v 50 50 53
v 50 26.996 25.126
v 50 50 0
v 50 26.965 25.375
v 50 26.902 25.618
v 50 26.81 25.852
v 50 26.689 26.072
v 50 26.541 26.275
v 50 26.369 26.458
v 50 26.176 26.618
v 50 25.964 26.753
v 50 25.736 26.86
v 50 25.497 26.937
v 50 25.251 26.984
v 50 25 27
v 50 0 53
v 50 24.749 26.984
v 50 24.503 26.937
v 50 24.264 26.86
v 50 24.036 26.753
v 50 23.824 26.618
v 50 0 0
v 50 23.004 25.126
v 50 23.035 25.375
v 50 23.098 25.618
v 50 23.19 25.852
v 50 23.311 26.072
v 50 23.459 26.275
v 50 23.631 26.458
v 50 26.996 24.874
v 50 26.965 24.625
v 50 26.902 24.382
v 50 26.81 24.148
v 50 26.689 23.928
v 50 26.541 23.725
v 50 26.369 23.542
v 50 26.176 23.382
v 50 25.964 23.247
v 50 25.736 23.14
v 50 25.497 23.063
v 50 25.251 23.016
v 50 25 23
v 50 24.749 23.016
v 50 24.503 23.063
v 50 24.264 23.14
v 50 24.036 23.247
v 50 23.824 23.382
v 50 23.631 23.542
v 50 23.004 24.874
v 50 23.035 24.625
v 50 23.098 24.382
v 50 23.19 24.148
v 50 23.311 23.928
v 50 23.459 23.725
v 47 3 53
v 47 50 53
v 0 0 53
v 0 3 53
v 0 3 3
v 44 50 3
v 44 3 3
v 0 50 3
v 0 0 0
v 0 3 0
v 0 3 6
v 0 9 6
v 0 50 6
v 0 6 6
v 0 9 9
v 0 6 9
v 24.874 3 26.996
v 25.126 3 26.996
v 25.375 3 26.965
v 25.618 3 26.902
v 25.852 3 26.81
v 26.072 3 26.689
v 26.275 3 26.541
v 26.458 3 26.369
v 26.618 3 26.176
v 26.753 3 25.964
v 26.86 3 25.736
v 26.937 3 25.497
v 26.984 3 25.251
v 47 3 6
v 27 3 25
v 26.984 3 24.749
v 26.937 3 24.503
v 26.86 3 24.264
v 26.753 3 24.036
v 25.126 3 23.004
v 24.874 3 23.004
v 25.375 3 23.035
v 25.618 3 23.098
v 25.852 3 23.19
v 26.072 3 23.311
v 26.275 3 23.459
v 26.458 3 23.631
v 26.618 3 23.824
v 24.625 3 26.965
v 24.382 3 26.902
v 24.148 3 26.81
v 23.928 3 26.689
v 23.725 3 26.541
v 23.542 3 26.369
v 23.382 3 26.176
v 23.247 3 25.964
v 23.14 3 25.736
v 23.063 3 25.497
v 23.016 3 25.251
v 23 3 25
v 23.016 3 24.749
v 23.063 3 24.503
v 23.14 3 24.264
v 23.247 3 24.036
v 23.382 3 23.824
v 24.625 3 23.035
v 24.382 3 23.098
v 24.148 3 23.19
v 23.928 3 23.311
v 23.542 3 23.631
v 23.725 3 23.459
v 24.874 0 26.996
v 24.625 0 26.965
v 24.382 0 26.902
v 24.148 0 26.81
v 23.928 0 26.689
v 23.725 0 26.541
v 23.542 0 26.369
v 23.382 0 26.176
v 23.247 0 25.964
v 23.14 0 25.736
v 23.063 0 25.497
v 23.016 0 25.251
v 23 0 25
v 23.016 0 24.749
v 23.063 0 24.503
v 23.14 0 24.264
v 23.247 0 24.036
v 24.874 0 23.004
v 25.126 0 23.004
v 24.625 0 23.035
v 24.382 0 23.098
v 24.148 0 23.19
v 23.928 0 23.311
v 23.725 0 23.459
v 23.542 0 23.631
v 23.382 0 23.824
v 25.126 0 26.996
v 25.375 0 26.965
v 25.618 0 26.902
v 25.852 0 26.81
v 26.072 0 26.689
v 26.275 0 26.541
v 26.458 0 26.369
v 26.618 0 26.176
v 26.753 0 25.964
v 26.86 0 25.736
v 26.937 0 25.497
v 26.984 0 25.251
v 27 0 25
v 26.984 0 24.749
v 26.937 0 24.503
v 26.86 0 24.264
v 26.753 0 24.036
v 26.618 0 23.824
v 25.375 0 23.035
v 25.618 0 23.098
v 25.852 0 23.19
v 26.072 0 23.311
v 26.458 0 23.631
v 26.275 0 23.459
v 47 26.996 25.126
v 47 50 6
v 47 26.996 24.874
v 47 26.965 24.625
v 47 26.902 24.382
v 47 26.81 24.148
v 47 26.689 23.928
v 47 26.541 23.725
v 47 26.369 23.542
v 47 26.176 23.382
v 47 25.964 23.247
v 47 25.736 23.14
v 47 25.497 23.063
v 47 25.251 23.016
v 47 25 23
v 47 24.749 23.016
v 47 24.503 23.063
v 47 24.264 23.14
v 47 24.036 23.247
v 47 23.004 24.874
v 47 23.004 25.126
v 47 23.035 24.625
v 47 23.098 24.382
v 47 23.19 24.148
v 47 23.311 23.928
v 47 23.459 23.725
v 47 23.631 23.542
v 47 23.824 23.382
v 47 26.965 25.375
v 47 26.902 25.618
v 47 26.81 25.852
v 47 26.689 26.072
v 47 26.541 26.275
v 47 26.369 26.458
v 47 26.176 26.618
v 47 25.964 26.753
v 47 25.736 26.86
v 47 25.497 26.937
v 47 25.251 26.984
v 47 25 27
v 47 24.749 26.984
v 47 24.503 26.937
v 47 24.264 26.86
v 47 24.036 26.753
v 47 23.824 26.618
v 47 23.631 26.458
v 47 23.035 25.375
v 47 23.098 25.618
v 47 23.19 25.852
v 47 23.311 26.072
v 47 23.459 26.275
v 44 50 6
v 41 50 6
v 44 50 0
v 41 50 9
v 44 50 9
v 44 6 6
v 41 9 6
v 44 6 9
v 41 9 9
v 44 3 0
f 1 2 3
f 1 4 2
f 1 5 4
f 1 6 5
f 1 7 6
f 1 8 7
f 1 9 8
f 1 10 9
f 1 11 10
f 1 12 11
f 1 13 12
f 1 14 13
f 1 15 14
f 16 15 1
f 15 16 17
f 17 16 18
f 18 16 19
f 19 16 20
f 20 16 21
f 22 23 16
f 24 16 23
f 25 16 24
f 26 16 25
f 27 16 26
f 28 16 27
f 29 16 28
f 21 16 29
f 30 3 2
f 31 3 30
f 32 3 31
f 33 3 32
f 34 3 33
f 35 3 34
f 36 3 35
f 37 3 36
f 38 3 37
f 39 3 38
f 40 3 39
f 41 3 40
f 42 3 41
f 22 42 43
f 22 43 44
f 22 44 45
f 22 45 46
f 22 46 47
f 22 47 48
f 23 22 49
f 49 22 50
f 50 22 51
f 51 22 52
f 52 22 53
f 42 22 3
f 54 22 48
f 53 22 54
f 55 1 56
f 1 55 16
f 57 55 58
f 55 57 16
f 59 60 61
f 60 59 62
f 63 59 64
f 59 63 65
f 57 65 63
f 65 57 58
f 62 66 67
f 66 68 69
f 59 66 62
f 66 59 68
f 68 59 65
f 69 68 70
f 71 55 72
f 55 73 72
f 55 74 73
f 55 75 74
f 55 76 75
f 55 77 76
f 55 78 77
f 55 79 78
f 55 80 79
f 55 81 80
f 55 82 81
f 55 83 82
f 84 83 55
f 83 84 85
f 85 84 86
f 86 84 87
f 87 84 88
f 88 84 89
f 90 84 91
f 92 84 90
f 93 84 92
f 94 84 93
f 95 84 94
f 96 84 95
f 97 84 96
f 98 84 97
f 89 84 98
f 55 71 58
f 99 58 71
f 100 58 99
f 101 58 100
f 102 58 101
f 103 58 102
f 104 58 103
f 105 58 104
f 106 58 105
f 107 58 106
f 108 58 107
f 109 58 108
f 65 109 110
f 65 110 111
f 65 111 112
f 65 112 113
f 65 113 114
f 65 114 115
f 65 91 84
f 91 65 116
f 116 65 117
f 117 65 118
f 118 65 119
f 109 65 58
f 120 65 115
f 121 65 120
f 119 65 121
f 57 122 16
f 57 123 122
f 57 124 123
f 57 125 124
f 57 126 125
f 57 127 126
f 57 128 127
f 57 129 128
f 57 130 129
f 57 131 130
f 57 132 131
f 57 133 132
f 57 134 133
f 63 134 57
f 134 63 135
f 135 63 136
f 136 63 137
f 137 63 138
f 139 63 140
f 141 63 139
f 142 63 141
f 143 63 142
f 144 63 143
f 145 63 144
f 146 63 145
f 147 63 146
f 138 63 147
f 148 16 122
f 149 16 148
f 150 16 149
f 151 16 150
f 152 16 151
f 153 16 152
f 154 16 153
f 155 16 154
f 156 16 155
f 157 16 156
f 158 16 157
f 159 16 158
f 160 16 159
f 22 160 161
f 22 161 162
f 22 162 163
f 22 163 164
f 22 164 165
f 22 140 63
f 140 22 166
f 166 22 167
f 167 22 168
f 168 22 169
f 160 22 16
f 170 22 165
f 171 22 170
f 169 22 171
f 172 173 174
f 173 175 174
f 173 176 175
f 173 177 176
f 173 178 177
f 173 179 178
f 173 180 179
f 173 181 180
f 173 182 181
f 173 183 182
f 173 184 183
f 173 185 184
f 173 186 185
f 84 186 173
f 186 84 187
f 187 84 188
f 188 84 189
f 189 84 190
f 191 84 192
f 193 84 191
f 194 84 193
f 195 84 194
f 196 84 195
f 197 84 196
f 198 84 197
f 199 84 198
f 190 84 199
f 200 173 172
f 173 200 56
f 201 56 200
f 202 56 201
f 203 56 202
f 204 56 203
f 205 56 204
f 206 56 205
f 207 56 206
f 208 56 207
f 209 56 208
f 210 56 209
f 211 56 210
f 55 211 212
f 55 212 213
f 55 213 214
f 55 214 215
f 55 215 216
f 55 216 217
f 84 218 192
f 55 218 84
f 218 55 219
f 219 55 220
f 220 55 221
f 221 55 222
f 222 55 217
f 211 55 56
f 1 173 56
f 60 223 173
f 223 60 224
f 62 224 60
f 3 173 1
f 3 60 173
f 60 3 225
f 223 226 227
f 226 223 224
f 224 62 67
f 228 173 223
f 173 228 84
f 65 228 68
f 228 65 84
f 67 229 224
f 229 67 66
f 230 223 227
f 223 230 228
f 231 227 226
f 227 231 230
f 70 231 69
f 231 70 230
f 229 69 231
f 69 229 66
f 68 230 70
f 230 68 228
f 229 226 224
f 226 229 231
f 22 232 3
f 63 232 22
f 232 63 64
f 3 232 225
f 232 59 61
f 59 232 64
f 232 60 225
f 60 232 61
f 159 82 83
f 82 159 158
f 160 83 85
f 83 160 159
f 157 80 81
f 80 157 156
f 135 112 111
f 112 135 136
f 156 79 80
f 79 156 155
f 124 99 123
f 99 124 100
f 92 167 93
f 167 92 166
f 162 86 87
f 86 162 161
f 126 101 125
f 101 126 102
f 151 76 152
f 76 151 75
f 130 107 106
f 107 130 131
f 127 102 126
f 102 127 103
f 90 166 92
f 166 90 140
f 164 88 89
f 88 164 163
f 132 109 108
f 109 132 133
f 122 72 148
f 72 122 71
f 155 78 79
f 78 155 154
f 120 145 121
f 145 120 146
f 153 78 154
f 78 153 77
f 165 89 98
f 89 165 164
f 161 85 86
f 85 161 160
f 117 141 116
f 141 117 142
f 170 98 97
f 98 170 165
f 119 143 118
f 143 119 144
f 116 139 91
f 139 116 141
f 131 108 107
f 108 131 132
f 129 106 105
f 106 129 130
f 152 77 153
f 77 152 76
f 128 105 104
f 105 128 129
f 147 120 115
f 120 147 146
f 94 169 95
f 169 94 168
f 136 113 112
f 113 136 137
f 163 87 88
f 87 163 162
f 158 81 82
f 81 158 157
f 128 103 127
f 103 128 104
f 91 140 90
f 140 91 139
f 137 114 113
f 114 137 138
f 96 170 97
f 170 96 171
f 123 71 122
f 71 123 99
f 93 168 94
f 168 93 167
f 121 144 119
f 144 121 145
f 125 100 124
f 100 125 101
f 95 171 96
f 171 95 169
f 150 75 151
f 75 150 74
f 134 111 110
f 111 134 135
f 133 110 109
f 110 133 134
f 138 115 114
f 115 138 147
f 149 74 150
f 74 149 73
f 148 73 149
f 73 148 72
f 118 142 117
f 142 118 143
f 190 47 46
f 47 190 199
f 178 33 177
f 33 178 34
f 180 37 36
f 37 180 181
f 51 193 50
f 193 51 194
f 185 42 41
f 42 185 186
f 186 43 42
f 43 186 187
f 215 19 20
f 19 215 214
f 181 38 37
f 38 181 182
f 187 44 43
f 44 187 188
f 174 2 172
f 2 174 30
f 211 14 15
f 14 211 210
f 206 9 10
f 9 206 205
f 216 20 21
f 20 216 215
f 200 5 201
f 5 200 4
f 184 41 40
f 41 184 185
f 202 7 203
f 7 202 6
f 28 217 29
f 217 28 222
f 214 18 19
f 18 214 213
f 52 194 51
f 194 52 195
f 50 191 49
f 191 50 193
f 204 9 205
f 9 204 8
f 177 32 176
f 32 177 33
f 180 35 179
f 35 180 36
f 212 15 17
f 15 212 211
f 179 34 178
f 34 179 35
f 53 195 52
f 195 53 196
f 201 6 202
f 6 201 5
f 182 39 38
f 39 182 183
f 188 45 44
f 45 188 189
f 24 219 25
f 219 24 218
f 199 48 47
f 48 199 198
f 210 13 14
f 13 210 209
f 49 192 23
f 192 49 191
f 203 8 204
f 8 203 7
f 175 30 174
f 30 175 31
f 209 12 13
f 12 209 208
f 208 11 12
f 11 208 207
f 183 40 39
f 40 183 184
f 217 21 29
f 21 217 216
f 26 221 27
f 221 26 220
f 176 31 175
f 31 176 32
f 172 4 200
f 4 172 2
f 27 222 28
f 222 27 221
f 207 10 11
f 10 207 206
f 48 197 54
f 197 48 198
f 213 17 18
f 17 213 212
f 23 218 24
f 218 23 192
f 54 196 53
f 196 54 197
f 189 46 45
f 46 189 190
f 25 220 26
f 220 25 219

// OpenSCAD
// file: enclosure_lib.scad
module SimpleCorner(wallWidth = 3,
                    totalWidth = 50,
                    totalHeight = 50,
                    totalDepth = 50,
                    gutterWidth = 3)
{
    // back wall
    cube([totalWidth,wallWidth,totalHeight]);
    // side wall
    translate([totalWidth,0,0])
        rotate([0,0,90])
            cube([totalDepth,wallWidth,totalHeight]);
    // base
    translate([0,totalDepth,0])
        rotate([90, 0, 0])
            cube([totalWidth,
                  wallWidth,
                  totalDepth]);
    // back gutter
    translate([0,
               wallWidth + gutterWidth,
               wallWidth * 2])
        rotate([0,90,0])
            cube([wallWidth, 
                  wallWidth, 
                  totalWidth - wallWidth - gutterWidth]);
    // side gutter
    translate([totalWidth - 2 * wallWidth - gutterWidth,
               totalDepth,
               wallWidth])
        rotate([90,0,0])
            cube([wallWidth, 
                  wallWidth, 
                  totalDepth - wallWidth - gutterWidth]);
    // gutter fill
    cube(3);
}
module Cone(holeRadius = 3)
{
    centerRadius    = 3;
    centerHeight    = 2;
    masterRadius    = 18;
    totalHeight     = 3;
    tanAlpha        = totalHeight / (masterRadius - centerRadius);
    holeHeight      = tanAlpha * (masterRadius - holeRadius);
    rotate_extrude()
        polygon(points=[
            [0, 0],
            [masterRadius, 0],
            [holeRadius, holeHeight],
            [holeRadius, 1],
            [0, 1]
        ]);
}
module Base(width = 50,
       depth = 50,
       halfHeight = 3)
{
    cube([width, depth, halfHeight]);
    translate([width / 2, depth / 2, halfHeight])
        Cone(3.5);
}

module BasedCorner(wallWidth = 3,
                   width = 50,
                   height = 50,
                   depth = 50,
                   gutterWidth = 3.4)
{
    translate([0, 0, wallWidth])
        union() {
            SimpleCorner(wallWidth, 
                         width, 
                         height - wallWidth, 
                         depth,
                         gutterWidth);
            translate([0,0, -wallWidth])
                difference() {
                    cube([width, depth, wallWidth]);
                    translate([width/2, depth/2, -.01])
                        Cone();
            }
        }
}

module top_profile(gutterWidth = 3) 
{
    polygon([
        [0, 0],
        [0, 9],
        [6, 9],
        [6, 6],
        [21,6],
        [21,3],
        [6 + gutterWidth, 3],
        [6 + gutterWidth, 0],
        [3 + gutterWidth, 0],
        [3 + gutterWidth, 3],
        [3, 3],
        [3, 0],
    ]);
}


module CableCoverBorderProfile(
    width = 6,
    borderHeight = 3,
    gutterHeight = 3,
    gutterWidth = 3)
{
    polygon([
        [0,0],
        [width, 0],
        [width, borderHeight],
        [width - gutterWidth, borderHeight],
        [width - gutterWidth, borderHeight + gutterHeight],
        [width, borderHeight + gutterHeight],
        [width, 2 * borderHeight + gutterHeight],
        [0, 2 * borderHeight + gutterHeight]
    ]);
}
module CableCoverBorderLinear(height = 10)
{
    linear_extrude(height)
        CableCoverBorderProfile();
}
union()
{
    //rotate_extrude(180)
    //    CableCoverBorderProfile();
    CableCoverBorderLinear();
    translate([-6, 3, 0])
        cube([6, 3, 10]);
    translate([-6, 9, 0])
        rotate([0, 0, 180])
            CableCoverBorderLinear();
}
// main file
use <enclosure_lib.scad>

$fn=50;
wall_h = 3;
h=50;
d=50;
w=50;
gutter_width=3;
difference() {
    union() 
    {
        translate([0, 0, wall_h])
            SimpleCorner(wall_h, w, h, d, gutter_width);
        translate([0, 0, 0])
            cube([w, wall_h, wall_h]);
        translate([w - wall_h * 2, 0, 0])
            cube([wall_h * 2, w, wall_h]);
    }
    // back hole
    translate([
        w / 2 ,
        wall_h+1,
        h / 2
    ])
        rotate([90])
            cylinder(5, 2, 2);
    // side hole
    translate([
        w - wall_h -1,
        w / 2,
        h / 2
    ])
        rotate([0, 90])
            cylinder(5, 2, 2);
}
